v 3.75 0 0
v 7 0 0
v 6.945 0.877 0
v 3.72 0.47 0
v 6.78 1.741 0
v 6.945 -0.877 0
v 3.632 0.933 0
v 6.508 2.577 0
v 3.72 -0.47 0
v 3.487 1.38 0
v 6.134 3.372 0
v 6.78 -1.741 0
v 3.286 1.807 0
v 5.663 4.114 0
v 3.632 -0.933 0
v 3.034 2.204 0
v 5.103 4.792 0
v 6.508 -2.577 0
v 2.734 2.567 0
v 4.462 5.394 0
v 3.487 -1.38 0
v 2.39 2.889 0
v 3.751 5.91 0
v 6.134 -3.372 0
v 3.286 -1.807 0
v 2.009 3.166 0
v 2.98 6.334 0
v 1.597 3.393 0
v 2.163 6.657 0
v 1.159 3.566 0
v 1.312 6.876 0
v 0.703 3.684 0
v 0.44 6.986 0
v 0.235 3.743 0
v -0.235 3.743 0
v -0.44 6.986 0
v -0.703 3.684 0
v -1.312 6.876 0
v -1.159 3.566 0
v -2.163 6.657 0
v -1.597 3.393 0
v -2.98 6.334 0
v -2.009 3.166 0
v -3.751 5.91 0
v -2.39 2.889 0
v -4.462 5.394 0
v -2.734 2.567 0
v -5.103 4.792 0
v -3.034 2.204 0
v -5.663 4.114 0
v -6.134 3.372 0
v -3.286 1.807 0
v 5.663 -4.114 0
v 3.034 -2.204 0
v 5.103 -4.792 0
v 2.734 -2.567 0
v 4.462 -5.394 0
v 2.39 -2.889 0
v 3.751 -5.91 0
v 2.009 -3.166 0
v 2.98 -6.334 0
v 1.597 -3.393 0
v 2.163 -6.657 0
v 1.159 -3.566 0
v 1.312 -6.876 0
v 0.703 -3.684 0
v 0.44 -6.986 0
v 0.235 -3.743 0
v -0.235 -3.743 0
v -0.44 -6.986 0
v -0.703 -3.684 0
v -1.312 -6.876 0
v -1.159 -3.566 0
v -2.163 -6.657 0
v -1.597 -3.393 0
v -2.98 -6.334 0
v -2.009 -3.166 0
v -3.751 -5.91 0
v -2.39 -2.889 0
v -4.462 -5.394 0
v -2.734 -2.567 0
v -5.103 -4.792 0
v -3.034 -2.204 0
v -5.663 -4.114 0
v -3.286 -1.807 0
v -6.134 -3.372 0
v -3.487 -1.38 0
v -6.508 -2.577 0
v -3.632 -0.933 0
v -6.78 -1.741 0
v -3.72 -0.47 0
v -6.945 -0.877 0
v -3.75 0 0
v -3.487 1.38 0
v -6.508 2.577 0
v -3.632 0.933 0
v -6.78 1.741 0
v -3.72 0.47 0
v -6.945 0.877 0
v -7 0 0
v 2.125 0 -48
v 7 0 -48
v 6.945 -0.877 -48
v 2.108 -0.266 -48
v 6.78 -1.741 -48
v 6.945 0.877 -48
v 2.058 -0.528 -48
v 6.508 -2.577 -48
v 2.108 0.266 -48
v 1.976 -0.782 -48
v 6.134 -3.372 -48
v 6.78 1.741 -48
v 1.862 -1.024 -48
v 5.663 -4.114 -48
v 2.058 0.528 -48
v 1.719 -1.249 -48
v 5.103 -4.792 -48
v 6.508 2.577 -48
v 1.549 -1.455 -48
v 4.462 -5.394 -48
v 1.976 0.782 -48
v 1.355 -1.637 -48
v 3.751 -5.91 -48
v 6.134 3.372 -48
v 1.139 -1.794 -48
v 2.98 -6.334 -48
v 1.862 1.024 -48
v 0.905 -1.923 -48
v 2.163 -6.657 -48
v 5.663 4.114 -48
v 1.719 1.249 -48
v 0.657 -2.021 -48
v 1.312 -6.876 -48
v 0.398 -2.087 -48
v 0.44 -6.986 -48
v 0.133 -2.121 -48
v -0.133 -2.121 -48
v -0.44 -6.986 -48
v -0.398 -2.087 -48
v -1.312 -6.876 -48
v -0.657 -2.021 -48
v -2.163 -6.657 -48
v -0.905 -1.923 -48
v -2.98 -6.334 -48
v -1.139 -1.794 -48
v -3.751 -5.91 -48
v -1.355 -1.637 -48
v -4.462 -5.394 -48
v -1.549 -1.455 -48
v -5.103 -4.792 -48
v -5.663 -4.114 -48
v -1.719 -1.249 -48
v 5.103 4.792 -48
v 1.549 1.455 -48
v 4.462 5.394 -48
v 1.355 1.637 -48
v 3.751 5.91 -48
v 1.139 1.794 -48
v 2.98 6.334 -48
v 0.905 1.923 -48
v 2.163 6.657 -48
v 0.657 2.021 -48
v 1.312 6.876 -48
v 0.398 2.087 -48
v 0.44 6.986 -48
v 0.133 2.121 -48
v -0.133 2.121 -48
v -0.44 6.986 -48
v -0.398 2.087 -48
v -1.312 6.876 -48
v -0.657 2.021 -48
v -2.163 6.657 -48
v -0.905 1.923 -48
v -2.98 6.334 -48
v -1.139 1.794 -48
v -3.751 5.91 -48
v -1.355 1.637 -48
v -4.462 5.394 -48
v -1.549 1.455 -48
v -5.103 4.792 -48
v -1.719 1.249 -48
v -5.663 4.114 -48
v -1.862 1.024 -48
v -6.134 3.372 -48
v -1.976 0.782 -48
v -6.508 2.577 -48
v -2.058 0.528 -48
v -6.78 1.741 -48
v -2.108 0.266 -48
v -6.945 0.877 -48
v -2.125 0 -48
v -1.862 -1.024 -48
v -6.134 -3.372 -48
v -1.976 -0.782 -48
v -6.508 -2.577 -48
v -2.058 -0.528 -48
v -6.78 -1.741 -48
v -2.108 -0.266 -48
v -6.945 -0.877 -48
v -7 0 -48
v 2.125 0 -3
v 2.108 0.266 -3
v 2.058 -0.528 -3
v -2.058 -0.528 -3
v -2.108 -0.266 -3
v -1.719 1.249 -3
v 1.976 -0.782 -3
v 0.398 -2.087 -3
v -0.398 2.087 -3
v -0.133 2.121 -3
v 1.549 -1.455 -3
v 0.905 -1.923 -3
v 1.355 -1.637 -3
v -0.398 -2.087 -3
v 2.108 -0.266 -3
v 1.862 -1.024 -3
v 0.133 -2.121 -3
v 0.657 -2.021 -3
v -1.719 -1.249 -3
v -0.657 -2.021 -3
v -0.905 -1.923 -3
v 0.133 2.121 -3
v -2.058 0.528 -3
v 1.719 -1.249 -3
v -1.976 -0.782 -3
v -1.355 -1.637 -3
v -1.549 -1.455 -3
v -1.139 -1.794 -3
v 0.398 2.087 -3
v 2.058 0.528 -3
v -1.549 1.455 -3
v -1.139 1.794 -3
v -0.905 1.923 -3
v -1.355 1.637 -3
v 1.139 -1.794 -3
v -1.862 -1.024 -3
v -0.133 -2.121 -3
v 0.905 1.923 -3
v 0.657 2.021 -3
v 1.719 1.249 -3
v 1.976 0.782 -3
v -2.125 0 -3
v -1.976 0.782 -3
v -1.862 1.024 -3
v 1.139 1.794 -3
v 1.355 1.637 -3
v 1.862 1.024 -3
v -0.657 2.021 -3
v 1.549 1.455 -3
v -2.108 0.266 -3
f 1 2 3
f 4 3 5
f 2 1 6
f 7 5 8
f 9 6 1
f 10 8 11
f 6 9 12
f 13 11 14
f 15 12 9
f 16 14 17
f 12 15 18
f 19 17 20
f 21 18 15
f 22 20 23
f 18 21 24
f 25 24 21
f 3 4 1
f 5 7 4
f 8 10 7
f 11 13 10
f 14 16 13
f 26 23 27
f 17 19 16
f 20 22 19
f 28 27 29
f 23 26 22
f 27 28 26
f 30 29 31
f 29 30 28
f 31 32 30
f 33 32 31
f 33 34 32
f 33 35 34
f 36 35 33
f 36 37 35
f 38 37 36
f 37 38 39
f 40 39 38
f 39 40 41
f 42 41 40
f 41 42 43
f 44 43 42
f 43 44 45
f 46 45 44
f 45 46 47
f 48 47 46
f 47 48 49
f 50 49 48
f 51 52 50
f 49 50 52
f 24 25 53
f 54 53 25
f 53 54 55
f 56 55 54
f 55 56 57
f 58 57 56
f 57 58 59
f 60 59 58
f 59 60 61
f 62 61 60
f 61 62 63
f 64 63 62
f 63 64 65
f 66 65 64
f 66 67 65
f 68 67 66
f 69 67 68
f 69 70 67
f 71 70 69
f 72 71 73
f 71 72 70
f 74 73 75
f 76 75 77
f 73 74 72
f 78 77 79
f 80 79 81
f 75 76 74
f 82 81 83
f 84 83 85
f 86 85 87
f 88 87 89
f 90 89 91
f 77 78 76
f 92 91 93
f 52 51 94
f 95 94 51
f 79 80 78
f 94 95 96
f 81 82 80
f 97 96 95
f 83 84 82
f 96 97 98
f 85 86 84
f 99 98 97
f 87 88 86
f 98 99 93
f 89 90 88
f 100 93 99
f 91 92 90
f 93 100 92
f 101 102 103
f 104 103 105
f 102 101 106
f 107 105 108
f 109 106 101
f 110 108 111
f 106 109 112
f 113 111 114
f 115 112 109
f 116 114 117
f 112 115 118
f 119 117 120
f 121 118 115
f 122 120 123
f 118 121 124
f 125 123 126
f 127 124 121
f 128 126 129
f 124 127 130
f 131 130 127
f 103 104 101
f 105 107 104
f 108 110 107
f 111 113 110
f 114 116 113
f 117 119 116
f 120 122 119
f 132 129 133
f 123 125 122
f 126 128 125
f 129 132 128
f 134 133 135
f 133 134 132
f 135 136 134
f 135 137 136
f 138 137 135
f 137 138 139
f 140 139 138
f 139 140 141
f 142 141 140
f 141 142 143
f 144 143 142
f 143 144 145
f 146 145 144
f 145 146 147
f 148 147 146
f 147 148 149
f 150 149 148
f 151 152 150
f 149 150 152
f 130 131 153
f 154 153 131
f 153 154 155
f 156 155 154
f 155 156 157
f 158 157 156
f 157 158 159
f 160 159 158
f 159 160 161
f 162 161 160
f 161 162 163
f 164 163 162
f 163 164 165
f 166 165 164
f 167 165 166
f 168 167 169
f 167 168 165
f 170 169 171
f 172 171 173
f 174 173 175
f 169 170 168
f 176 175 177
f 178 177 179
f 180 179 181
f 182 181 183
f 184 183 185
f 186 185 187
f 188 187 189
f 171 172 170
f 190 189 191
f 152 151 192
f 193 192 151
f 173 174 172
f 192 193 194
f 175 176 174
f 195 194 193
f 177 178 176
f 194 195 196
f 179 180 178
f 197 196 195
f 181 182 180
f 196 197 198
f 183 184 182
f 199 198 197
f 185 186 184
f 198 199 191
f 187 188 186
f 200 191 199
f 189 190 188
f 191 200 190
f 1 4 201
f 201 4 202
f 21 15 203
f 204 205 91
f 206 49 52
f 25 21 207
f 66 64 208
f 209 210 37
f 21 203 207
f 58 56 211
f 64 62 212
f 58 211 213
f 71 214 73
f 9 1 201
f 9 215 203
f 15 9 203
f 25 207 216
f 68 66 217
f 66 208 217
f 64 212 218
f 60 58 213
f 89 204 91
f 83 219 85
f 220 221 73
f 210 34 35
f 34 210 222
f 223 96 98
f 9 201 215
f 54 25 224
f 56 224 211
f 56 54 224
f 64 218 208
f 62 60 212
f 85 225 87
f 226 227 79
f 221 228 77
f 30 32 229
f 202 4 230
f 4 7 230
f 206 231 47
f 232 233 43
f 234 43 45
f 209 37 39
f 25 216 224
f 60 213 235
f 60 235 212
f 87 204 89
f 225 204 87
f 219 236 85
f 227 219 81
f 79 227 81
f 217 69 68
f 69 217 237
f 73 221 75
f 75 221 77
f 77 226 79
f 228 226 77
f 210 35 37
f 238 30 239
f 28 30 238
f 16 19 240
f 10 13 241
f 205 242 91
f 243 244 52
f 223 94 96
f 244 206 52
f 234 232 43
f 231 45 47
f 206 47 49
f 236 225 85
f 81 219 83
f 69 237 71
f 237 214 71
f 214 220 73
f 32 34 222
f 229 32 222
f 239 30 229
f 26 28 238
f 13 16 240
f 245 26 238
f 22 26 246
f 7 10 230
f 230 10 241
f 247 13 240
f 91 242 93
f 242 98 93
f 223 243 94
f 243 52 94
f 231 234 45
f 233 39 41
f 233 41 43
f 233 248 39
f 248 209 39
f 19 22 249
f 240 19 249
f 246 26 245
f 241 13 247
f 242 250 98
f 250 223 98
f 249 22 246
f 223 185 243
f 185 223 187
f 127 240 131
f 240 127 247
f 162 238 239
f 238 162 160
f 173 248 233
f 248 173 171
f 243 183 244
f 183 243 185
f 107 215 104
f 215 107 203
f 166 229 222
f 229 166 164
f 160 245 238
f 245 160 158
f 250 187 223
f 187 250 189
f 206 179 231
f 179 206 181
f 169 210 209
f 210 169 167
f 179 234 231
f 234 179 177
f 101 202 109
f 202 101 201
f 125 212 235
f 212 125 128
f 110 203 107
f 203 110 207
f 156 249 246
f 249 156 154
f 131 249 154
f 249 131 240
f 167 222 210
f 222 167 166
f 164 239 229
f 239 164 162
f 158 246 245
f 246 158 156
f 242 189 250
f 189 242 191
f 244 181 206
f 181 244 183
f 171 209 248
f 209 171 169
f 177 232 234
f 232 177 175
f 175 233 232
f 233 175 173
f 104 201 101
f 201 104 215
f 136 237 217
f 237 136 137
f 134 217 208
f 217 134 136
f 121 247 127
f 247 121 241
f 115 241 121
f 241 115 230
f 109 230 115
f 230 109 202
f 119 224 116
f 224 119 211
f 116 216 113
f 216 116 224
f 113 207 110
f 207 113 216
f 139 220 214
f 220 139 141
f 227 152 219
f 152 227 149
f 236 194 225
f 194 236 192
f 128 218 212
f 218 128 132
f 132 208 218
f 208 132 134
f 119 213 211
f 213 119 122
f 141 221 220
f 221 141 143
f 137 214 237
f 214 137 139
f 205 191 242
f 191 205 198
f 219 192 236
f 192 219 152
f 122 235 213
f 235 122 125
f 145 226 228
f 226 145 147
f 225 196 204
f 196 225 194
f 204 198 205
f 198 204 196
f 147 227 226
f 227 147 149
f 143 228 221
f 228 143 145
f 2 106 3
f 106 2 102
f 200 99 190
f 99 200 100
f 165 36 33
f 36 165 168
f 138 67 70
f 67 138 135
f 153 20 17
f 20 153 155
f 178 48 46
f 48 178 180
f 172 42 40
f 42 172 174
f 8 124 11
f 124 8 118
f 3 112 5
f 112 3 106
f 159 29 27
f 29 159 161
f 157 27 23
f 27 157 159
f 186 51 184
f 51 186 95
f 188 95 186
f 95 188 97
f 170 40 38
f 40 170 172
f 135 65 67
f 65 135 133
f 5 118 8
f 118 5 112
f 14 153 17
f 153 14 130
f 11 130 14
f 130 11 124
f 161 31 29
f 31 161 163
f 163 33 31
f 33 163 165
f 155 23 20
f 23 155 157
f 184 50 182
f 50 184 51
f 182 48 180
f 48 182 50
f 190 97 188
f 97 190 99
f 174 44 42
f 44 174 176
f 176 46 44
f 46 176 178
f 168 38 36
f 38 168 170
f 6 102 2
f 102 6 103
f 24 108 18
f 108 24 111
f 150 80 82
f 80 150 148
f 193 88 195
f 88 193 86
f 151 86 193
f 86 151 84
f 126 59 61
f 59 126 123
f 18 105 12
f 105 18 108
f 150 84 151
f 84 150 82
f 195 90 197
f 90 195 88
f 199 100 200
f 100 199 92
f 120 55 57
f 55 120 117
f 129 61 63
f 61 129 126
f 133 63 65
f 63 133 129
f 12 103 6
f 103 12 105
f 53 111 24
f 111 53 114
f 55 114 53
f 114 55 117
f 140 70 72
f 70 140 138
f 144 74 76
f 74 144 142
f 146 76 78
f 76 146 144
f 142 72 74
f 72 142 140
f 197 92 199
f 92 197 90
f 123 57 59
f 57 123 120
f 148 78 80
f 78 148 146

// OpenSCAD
$fn = 50;


difference() {
	union() {
		translate(v = [0, 0, -48.0000000000]) {
			cylinder(h = 48, r = 7.0000000000);
		}
		cylinder(h = 0, r = 16.0000000000);
	}
	union() {
		translate(v = [0, 0, 0]) {
			rotate(a = [0, 0, 0]) {
				difference() {
					union() {
						#translate(v = [0, 0, -48.0000000000]) {
							cylinder(h = 48, r = 2.0000000000);
						}
						#translate(v = [0, 0, -3]) {
							cylinder(h = 3, r = 7.0000000000, r1 = 2.1250000000, r2 = 3.7500000000);
						}
						#translate(v = [0, 0, -48.0000000000]) {
							cylinder(h = 48, r = 2.1250000000);
						}
						#translate(v = [0, 0, -48.0000000000]) {
							cylinder(h = 48, r = 2.0000000000);
						}
					}
					union();
				}
			}
		}
	}
}
